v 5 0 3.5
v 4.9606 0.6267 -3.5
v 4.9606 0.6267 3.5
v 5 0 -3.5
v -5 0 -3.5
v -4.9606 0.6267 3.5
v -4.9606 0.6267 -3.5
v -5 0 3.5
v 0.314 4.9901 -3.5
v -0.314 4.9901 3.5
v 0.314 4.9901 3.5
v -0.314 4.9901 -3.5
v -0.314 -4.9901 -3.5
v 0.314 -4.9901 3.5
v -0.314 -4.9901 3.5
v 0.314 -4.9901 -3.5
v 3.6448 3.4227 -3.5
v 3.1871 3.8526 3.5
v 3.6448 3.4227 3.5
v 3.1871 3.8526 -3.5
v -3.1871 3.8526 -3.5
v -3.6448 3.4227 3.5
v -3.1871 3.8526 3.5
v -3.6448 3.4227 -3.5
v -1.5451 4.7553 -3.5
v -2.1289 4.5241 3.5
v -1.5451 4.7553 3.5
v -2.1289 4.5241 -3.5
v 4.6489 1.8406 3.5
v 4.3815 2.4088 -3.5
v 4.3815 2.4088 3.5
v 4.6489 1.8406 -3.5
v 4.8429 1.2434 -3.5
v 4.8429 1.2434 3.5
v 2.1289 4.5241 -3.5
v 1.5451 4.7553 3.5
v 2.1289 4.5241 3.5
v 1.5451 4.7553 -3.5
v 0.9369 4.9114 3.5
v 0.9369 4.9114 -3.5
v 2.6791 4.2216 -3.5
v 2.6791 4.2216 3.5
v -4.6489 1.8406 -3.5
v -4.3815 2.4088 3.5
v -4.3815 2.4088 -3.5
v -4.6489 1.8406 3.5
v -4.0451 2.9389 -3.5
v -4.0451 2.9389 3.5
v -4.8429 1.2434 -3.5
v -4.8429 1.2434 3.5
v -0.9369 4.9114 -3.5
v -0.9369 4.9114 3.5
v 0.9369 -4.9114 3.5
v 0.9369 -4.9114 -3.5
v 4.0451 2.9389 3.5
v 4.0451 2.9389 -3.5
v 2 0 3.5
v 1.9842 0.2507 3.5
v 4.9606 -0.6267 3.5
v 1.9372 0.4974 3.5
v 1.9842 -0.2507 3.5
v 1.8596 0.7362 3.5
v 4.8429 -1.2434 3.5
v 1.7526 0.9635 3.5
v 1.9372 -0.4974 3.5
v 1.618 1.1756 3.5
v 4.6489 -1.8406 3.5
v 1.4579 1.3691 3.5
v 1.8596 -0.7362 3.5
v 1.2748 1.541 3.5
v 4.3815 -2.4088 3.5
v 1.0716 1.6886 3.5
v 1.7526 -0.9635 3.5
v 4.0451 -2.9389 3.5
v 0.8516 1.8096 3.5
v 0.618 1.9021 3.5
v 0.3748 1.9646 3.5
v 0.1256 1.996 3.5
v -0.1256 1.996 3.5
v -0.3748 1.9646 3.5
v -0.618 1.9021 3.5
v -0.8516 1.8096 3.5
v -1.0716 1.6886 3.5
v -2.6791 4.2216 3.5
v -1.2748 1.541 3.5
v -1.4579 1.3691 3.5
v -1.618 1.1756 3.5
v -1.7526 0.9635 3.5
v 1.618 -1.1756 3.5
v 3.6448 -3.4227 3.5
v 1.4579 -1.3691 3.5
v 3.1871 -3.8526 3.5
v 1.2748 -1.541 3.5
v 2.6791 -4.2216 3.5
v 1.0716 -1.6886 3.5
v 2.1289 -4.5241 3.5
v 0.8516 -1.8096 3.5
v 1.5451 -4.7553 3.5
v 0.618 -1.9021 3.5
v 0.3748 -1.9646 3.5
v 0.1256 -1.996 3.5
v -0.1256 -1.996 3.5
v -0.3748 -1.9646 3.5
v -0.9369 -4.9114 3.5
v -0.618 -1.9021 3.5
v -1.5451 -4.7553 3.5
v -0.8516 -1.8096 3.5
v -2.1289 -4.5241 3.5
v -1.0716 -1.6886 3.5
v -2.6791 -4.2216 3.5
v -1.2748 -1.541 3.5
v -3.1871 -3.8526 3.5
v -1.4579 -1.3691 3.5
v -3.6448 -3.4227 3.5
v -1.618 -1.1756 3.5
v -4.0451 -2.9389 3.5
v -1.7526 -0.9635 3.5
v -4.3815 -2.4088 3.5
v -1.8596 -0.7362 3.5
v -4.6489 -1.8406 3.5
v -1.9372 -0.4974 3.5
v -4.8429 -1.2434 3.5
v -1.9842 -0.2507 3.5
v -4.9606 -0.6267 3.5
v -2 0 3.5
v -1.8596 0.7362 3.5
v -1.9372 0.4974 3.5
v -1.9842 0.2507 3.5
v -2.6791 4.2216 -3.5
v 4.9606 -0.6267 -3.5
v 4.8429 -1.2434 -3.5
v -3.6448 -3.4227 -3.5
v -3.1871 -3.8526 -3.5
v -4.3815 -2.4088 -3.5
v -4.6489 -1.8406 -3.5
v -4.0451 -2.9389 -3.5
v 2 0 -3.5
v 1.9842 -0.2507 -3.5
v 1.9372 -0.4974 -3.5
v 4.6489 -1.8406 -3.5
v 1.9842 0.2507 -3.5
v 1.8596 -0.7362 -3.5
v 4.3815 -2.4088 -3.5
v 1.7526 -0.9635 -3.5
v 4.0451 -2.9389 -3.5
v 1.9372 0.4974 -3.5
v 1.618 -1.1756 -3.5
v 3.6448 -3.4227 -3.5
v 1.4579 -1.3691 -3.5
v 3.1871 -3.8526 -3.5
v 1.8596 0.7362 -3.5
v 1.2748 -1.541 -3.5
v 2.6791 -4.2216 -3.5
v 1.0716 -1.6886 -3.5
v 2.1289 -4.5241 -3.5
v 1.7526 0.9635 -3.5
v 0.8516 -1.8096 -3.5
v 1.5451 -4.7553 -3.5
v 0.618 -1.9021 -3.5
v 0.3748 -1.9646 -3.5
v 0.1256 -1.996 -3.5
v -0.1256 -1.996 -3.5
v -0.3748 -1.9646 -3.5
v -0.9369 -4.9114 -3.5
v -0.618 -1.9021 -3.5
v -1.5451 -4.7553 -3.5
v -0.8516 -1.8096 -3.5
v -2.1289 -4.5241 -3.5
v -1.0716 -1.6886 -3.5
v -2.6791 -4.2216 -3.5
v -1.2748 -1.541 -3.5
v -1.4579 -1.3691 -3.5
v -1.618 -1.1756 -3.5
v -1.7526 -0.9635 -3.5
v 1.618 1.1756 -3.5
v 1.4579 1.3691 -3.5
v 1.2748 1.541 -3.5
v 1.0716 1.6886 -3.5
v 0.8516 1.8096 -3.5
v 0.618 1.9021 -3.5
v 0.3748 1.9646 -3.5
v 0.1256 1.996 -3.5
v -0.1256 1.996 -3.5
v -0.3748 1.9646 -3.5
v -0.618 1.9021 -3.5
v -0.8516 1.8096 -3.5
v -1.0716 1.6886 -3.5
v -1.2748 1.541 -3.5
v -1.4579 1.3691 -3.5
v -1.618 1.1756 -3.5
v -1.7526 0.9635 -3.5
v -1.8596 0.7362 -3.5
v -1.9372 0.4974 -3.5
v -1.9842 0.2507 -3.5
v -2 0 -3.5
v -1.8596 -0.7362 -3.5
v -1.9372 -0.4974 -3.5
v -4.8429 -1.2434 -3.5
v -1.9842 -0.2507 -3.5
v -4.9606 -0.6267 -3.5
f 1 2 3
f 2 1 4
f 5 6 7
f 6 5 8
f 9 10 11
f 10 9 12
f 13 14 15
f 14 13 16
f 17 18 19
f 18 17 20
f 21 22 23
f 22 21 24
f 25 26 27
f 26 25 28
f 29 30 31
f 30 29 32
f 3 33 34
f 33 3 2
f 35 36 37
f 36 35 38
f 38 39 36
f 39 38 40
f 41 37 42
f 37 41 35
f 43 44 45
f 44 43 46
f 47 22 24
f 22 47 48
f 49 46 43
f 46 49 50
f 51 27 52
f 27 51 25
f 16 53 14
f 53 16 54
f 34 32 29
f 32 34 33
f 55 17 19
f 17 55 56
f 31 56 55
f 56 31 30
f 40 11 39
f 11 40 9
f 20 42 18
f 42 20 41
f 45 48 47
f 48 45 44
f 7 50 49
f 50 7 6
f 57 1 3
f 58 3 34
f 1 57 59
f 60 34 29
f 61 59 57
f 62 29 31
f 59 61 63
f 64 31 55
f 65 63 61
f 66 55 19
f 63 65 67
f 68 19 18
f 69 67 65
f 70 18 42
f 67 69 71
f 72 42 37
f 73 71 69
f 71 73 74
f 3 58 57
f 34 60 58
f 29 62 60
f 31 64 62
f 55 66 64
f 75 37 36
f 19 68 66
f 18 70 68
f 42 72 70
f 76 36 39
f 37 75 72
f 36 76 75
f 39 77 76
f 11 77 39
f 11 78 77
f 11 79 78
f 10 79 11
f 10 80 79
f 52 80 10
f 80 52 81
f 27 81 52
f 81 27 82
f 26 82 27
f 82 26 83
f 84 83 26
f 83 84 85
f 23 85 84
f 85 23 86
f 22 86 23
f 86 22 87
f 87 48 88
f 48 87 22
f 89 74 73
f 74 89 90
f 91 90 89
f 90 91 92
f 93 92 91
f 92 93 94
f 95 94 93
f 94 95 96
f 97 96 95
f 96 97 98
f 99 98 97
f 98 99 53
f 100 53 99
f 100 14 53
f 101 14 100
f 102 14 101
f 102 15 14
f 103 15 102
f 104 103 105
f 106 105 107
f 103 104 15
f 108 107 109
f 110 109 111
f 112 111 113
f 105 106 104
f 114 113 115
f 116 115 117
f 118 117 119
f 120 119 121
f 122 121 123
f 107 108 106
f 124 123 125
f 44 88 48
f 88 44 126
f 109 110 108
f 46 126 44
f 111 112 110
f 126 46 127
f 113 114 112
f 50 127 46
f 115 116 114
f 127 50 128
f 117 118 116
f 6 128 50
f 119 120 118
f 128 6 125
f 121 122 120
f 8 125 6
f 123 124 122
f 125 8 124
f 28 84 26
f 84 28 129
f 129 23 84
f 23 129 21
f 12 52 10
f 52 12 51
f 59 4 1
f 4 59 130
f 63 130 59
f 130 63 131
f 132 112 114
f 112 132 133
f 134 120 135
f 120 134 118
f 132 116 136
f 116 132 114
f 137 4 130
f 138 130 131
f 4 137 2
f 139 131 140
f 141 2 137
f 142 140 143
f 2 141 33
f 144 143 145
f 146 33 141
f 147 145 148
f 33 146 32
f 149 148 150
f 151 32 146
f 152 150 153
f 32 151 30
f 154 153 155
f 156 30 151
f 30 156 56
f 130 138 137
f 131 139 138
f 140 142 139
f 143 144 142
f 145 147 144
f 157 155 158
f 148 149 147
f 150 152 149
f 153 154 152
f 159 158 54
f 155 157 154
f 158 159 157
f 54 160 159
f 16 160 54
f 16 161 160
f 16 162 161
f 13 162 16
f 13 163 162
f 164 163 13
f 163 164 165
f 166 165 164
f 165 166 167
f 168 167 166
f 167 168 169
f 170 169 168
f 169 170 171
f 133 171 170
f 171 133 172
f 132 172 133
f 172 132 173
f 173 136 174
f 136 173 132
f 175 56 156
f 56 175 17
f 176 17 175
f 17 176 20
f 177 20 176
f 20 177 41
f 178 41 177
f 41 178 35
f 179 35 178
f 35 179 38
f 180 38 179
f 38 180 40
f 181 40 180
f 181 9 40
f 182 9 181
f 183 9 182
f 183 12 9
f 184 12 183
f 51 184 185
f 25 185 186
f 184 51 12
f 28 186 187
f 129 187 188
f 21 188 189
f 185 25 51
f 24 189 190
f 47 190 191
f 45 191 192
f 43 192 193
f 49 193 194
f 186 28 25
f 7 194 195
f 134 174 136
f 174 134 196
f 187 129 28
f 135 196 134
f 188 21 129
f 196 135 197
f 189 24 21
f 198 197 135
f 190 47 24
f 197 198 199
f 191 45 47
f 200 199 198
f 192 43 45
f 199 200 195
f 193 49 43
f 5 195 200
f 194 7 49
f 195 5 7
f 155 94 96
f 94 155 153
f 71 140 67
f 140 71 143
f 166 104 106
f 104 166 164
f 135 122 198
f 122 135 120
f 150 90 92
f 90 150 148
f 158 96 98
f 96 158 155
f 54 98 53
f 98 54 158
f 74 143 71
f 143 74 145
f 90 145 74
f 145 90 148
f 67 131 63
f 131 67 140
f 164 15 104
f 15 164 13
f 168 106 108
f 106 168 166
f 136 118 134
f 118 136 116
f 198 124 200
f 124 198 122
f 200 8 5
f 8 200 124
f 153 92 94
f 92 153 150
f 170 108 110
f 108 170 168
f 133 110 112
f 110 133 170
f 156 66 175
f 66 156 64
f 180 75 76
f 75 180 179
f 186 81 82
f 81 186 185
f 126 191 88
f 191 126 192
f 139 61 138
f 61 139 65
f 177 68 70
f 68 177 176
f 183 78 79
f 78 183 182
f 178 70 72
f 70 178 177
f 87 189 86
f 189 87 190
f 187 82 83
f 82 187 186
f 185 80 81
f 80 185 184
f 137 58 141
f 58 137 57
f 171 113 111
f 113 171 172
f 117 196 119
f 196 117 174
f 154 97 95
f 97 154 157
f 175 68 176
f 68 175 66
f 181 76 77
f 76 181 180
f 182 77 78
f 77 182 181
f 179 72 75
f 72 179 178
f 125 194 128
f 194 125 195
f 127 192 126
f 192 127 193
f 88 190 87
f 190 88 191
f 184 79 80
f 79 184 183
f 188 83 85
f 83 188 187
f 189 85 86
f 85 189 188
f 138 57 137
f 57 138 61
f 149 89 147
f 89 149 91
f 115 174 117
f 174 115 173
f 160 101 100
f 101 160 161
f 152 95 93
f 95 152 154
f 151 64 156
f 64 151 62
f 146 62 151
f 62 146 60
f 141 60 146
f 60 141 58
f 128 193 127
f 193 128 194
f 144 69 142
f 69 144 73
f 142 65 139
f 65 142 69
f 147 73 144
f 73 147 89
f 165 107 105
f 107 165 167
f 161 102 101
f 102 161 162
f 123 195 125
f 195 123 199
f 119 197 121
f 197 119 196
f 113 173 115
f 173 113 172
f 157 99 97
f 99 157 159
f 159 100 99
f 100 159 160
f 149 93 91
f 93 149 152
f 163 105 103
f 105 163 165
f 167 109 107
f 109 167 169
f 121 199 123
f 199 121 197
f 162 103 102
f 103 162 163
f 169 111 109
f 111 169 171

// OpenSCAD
$fn = 50;


difference() {
	union() {
		translate(v = [0, 0, -3.5000000000]) {
			cylinder(h = 7, r = 5.0000000000);
		}
	}
	union() {
		translate(v = [0, 0, -100.0000000000]) {
			cylinder(h = 200, r = 2);
		}
	}
}
